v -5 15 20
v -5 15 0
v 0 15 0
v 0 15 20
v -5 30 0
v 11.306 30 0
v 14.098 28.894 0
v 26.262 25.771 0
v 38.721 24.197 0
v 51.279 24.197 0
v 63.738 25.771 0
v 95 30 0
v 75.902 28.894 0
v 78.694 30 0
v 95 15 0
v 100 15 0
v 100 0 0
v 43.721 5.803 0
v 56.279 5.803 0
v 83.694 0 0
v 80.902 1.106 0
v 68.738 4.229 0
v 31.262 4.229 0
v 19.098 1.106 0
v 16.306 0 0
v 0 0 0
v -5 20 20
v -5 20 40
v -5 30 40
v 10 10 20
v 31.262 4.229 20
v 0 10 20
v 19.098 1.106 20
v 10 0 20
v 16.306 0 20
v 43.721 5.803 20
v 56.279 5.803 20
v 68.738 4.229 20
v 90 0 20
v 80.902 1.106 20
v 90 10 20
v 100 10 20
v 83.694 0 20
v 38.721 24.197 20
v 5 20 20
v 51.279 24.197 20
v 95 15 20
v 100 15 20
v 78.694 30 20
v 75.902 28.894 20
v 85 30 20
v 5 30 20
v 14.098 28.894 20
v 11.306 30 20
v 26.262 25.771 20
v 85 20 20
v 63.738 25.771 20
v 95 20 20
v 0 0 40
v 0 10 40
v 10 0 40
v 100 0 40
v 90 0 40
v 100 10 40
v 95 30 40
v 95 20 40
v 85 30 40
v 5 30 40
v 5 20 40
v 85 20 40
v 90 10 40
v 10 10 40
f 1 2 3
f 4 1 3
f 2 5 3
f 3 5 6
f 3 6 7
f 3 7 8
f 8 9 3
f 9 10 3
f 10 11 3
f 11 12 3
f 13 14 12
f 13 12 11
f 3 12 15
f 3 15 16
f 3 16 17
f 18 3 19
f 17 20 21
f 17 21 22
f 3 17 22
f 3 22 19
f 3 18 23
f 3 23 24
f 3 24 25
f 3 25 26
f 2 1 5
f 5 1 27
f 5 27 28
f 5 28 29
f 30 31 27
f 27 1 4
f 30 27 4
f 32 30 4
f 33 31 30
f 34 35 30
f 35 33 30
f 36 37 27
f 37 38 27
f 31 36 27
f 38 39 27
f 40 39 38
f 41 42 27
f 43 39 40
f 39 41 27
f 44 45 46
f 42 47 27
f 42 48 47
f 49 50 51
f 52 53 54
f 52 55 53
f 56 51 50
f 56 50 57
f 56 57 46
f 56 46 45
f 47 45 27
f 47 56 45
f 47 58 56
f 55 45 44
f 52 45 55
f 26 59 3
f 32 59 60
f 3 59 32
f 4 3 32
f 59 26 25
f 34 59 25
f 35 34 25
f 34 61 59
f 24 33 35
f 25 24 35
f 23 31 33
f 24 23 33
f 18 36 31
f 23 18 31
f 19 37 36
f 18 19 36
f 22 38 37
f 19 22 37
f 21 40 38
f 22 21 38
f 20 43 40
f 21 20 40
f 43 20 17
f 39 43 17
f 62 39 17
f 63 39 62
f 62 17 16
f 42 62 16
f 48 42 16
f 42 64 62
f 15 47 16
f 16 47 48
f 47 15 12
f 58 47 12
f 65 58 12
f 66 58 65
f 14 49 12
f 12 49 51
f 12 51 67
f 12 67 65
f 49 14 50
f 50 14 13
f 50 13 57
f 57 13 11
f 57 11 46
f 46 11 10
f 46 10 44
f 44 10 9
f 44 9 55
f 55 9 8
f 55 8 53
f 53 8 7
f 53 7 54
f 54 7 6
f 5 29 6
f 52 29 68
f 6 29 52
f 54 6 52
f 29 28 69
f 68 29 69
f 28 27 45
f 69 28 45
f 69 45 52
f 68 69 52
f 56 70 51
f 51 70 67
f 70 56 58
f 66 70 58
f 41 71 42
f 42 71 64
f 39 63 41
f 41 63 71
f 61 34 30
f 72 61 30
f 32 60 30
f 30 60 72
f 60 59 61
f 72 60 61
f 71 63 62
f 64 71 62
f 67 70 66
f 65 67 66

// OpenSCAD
module tiger_half_body(height, body_length, body_width, body_height, leg_width){
	difference(){
		union(){
			cube([body_length, .5 * body_width, body_height]);
			cube([leg_width, leg_width, height]);
			translate([body_length - leg_width, 0, 0])
				cube([leg_width, leg_width, height]);
		}
		translate([.5 * body_length, -body_length + .2 * body_width, -.5 * body_length])
		cylinder(100, 100, 100, $fn=50);
	}
}

module tiger(height, body_length, body_width, body_height, leg_width){
	union(){
		tiger_half_body(height, body_length, body_width, body_height, leg_width);
		translate([body_length - .5 * leg_width, body_width-.0001, 0])
			rotate([0, 0, 180])
				tiger_half_body(height, body_length, body_width, body_height, leg_width);
	}
}	

height = 40;
body_length = 100;
body_width = 30;
body_height = 20;
leg_width = 10;

tiger(height, body_length, body_width, body_height, leg_width);
